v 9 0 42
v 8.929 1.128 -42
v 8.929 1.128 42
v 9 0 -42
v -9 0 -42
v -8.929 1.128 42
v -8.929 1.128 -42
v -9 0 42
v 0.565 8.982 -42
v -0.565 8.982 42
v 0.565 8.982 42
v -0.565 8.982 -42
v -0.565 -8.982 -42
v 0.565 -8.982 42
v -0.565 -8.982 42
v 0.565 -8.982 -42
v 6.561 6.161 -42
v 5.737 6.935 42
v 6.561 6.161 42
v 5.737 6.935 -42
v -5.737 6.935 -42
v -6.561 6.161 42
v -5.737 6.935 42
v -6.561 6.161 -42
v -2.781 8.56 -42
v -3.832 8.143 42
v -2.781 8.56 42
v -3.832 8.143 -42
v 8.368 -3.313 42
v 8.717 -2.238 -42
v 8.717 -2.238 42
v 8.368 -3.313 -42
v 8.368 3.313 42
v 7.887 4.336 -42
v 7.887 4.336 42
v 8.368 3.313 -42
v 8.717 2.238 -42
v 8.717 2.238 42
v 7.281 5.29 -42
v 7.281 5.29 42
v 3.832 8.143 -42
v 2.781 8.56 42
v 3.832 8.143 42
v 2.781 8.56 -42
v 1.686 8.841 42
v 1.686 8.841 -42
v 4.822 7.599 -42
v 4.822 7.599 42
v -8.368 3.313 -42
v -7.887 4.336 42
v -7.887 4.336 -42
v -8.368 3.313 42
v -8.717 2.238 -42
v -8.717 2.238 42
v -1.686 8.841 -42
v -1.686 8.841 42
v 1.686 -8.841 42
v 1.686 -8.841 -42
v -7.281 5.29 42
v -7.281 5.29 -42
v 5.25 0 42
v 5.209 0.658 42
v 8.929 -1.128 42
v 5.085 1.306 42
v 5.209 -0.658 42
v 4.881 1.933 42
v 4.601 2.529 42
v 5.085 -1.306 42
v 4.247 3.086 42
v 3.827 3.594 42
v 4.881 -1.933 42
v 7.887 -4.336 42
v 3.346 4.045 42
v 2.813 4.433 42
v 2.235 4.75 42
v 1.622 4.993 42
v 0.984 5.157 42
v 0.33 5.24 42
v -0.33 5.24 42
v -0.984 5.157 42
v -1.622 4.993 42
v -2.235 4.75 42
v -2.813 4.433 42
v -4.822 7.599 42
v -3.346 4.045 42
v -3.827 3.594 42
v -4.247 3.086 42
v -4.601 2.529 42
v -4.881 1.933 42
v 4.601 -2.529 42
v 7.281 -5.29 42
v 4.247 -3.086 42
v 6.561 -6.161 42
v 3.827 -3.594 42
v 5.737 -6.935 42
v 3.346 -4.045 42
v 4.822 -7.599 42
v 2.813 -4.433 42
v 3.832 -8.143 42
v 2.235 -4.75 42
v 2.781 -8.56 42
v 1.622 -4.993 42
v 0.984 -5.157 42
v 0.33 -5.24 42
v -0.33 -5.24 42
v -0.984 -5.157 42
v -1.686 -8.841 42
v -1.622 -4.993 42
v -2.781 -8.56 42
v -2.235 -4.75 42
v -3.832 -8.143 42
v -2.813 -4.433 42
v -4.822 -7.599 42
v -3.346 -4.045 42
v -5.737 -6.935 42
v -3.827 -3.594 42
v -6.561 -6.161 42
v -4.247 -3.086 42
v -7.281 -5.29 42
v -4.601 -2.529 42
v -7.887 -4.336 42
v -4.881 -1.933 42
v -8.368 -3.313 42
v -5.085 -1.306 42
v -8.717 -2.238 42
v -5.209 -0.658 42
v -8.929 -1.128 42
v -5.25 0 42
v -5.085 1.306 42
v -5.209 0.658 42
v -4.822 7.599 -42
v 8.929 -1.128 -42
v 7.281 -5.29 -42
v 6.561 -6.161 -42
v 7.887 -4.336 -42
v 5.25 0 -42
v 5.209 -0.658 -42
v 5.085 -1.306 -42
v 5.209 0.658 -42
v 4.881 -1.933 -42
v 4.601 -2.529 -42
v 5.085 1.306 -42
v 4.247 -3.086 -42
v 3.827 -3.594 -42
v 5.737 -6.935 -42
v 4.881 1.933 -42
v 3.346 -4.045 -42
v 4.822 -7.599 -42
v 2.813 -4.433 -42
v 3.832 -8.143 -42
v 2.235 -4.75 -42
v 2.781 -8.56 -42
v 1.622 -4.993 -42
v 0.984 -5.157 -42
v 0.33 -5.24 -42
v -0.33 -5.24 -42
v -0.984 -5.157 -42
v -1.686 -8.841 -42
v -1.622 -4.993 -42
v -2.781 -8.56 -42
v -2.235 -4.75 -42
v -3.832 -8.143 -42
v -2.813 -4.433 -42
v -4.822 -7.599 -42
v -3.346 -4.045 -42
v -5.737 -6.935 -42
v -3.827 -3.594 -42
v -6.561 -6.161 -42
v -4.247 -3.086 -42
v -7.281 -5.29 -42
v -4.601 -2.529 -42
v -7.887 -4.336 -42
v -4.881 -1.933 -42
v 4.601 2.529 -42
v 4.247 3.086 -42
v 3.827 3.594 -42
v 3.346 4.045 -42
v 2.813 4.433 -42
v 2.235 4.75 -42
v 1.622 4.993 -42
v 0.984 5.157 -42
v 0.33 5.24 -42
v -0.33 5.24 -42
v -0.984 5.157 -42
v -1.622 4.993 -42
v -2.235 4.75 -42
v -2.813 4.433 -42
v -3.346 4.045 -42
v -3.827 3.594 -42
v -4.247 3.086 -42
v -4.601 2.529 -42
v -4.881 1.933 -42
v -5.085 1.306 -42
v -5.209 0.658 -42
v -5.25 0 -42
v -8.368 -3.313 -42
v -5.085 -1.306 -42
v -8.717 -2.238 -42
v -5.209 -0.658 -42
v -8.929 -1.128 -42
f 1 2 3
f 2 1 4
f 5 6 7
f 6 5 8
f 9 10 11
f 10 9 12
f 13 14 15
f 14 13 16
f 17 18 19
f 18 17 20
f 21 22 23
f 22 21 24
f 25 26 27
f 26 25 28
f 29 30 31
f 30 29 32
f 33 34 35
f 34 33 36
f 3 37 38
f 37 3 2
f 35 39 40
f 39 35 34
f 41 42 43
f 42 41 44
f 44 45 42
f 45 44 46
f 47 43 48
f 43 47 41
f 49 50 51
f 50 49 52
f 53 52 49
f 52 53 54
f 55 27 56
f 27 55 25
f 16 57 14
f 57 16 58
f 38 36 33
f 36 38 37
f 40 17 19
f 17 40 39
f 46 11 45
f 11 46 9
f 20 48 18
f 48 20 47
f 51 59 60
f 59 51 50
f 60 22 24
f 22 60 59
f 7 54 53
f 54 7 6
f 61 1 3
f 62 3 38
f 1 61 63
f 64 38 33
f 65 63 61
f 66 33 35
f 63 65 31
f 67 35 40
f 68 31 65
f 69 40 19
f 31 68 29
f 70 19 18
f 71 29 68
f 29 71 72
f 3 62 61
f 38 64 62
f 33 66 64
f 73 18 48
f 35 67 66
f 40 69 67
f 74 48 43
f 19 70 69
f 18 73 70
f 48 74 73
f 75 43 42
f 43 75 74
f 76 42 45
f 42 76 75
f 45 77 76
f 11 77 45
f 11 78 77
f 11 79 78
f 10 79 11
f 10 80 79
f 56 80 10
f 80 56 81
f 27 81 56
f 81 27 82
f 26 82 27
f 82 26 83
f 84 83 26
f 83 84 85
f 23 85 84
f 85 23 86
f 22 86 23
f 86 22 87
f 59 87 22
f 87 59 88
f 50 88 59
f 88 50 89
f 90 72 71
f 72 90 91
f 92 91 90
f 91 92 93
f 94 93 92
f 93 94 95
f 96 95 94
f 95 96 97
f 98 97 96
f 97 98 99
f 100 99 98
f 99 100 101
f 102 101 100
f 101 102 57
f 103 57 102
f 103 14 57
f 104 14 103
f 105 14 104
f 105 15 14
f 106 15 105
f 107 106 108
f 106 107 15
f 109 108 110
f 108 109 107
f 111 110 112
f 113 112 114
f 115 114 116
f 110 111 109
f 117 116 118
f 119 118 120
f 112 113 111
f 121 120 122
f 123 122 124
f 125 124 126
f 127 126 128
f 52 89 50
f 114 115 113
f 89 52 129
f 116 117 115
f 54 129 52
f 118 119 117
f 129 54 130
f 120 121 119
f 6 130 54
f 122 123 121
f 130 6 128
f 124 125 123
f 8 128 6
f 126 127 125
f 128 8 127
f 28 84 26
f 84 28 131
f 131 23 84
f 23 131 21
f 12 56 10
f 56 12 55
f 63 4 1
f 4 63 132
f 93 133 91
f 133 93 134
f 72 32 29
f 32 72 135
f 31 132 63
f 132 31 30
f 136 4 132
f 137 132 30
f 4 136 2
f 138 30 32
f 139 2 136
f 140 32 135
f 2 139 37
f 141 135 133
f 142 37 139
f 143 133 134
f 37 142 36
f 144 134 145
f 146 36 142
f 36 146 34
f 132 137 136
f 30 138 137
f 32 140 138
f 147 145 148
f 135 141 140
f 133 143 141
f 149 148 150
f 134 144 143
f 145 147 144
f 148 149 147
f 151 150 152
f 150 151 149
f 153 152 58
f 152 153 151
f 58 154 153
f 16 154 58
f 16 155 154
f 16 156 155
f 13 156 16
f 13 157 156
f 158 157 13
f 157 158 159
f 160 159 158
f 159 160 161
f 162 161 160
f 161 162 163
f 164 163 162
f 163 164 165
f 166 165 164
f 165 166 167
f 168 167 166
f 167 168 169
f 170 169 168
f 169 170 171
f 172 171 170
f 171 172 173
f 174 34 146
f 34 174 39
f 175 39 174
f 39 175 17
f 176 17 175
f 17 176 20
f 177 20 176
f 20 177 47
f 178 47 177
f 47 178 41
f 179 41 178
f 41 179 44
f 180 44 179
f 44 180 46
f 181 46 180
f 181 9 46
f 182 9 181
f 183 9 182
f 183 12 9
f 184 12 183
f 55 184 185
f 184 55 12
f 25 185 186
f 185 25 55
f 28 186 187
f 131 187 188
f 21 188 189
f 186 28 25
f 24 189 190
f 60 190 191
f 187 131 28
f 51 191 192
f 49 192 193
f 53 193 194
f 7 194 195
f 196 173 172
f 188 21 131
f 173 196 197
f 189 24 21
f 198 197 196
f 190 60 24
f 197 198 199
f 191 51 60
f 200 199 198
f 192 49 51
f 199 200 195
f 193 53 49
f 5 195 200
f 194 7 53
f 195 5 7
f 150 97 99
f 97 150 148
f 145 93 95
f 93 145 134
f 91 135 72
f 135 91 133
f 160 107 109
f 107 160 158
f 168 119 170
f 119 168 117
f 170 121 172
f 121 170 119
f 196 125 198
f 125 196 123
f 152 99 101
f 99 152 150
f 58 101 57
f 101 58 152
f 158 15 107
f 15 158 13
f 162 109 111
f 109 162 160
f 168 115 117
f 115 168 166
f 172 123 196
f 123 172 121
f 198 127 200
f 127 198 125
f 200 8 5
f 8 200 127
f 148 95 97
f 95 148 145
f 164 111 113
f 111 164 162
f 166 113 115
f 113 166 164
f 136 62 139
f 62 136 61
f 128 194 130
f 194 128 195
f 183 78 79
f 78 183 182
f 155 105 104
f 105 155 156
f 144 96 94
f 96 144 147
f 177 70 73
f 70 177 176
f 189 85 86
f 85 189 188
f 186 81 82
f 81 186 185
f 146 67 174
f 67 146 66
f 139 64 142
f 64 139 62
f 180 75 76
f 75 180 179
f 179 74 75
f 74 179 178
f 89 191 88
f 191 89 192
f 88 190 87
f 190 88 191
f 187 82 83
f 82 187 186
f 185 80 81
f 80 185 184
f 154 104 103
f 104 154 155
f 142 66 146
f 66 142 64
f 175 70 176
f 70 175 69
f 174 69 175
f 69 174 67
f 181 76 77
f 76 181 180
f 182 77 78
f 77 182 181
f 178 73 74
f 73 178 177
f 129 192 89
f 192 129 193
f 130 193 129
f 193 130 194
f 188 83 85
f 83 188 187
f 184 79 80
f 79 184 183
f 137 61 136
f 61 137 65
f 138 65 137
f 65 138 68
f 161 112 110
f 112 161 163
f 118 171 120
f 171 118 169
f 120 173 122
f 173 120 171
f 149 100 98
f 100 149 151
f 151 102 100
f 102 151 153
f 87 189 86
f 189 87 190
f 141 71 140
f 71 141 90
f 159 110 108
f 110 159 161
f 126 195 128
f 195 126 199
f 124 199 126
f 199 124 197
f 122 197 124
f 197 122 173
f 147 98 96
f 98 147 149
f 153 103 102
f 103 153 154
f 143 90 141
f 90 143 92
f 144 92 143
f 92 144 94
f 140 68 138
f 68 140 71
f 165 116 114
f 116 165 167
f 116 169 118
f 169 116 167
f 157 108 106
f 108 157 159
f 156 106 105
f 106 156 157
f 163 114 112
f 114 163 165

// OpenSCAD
$fn = 50;


difference() {
	union() {
		translate(v = [0, 0, -42.0000000000]) {
			cylinder(h = 84, r = 9.0000000000);
		}
	}
	union() {
		translate(v = [0, 0, -100.0000000000]) {
			cylinder(h = 200, r = 5.2500000000);
		}
	}
}
